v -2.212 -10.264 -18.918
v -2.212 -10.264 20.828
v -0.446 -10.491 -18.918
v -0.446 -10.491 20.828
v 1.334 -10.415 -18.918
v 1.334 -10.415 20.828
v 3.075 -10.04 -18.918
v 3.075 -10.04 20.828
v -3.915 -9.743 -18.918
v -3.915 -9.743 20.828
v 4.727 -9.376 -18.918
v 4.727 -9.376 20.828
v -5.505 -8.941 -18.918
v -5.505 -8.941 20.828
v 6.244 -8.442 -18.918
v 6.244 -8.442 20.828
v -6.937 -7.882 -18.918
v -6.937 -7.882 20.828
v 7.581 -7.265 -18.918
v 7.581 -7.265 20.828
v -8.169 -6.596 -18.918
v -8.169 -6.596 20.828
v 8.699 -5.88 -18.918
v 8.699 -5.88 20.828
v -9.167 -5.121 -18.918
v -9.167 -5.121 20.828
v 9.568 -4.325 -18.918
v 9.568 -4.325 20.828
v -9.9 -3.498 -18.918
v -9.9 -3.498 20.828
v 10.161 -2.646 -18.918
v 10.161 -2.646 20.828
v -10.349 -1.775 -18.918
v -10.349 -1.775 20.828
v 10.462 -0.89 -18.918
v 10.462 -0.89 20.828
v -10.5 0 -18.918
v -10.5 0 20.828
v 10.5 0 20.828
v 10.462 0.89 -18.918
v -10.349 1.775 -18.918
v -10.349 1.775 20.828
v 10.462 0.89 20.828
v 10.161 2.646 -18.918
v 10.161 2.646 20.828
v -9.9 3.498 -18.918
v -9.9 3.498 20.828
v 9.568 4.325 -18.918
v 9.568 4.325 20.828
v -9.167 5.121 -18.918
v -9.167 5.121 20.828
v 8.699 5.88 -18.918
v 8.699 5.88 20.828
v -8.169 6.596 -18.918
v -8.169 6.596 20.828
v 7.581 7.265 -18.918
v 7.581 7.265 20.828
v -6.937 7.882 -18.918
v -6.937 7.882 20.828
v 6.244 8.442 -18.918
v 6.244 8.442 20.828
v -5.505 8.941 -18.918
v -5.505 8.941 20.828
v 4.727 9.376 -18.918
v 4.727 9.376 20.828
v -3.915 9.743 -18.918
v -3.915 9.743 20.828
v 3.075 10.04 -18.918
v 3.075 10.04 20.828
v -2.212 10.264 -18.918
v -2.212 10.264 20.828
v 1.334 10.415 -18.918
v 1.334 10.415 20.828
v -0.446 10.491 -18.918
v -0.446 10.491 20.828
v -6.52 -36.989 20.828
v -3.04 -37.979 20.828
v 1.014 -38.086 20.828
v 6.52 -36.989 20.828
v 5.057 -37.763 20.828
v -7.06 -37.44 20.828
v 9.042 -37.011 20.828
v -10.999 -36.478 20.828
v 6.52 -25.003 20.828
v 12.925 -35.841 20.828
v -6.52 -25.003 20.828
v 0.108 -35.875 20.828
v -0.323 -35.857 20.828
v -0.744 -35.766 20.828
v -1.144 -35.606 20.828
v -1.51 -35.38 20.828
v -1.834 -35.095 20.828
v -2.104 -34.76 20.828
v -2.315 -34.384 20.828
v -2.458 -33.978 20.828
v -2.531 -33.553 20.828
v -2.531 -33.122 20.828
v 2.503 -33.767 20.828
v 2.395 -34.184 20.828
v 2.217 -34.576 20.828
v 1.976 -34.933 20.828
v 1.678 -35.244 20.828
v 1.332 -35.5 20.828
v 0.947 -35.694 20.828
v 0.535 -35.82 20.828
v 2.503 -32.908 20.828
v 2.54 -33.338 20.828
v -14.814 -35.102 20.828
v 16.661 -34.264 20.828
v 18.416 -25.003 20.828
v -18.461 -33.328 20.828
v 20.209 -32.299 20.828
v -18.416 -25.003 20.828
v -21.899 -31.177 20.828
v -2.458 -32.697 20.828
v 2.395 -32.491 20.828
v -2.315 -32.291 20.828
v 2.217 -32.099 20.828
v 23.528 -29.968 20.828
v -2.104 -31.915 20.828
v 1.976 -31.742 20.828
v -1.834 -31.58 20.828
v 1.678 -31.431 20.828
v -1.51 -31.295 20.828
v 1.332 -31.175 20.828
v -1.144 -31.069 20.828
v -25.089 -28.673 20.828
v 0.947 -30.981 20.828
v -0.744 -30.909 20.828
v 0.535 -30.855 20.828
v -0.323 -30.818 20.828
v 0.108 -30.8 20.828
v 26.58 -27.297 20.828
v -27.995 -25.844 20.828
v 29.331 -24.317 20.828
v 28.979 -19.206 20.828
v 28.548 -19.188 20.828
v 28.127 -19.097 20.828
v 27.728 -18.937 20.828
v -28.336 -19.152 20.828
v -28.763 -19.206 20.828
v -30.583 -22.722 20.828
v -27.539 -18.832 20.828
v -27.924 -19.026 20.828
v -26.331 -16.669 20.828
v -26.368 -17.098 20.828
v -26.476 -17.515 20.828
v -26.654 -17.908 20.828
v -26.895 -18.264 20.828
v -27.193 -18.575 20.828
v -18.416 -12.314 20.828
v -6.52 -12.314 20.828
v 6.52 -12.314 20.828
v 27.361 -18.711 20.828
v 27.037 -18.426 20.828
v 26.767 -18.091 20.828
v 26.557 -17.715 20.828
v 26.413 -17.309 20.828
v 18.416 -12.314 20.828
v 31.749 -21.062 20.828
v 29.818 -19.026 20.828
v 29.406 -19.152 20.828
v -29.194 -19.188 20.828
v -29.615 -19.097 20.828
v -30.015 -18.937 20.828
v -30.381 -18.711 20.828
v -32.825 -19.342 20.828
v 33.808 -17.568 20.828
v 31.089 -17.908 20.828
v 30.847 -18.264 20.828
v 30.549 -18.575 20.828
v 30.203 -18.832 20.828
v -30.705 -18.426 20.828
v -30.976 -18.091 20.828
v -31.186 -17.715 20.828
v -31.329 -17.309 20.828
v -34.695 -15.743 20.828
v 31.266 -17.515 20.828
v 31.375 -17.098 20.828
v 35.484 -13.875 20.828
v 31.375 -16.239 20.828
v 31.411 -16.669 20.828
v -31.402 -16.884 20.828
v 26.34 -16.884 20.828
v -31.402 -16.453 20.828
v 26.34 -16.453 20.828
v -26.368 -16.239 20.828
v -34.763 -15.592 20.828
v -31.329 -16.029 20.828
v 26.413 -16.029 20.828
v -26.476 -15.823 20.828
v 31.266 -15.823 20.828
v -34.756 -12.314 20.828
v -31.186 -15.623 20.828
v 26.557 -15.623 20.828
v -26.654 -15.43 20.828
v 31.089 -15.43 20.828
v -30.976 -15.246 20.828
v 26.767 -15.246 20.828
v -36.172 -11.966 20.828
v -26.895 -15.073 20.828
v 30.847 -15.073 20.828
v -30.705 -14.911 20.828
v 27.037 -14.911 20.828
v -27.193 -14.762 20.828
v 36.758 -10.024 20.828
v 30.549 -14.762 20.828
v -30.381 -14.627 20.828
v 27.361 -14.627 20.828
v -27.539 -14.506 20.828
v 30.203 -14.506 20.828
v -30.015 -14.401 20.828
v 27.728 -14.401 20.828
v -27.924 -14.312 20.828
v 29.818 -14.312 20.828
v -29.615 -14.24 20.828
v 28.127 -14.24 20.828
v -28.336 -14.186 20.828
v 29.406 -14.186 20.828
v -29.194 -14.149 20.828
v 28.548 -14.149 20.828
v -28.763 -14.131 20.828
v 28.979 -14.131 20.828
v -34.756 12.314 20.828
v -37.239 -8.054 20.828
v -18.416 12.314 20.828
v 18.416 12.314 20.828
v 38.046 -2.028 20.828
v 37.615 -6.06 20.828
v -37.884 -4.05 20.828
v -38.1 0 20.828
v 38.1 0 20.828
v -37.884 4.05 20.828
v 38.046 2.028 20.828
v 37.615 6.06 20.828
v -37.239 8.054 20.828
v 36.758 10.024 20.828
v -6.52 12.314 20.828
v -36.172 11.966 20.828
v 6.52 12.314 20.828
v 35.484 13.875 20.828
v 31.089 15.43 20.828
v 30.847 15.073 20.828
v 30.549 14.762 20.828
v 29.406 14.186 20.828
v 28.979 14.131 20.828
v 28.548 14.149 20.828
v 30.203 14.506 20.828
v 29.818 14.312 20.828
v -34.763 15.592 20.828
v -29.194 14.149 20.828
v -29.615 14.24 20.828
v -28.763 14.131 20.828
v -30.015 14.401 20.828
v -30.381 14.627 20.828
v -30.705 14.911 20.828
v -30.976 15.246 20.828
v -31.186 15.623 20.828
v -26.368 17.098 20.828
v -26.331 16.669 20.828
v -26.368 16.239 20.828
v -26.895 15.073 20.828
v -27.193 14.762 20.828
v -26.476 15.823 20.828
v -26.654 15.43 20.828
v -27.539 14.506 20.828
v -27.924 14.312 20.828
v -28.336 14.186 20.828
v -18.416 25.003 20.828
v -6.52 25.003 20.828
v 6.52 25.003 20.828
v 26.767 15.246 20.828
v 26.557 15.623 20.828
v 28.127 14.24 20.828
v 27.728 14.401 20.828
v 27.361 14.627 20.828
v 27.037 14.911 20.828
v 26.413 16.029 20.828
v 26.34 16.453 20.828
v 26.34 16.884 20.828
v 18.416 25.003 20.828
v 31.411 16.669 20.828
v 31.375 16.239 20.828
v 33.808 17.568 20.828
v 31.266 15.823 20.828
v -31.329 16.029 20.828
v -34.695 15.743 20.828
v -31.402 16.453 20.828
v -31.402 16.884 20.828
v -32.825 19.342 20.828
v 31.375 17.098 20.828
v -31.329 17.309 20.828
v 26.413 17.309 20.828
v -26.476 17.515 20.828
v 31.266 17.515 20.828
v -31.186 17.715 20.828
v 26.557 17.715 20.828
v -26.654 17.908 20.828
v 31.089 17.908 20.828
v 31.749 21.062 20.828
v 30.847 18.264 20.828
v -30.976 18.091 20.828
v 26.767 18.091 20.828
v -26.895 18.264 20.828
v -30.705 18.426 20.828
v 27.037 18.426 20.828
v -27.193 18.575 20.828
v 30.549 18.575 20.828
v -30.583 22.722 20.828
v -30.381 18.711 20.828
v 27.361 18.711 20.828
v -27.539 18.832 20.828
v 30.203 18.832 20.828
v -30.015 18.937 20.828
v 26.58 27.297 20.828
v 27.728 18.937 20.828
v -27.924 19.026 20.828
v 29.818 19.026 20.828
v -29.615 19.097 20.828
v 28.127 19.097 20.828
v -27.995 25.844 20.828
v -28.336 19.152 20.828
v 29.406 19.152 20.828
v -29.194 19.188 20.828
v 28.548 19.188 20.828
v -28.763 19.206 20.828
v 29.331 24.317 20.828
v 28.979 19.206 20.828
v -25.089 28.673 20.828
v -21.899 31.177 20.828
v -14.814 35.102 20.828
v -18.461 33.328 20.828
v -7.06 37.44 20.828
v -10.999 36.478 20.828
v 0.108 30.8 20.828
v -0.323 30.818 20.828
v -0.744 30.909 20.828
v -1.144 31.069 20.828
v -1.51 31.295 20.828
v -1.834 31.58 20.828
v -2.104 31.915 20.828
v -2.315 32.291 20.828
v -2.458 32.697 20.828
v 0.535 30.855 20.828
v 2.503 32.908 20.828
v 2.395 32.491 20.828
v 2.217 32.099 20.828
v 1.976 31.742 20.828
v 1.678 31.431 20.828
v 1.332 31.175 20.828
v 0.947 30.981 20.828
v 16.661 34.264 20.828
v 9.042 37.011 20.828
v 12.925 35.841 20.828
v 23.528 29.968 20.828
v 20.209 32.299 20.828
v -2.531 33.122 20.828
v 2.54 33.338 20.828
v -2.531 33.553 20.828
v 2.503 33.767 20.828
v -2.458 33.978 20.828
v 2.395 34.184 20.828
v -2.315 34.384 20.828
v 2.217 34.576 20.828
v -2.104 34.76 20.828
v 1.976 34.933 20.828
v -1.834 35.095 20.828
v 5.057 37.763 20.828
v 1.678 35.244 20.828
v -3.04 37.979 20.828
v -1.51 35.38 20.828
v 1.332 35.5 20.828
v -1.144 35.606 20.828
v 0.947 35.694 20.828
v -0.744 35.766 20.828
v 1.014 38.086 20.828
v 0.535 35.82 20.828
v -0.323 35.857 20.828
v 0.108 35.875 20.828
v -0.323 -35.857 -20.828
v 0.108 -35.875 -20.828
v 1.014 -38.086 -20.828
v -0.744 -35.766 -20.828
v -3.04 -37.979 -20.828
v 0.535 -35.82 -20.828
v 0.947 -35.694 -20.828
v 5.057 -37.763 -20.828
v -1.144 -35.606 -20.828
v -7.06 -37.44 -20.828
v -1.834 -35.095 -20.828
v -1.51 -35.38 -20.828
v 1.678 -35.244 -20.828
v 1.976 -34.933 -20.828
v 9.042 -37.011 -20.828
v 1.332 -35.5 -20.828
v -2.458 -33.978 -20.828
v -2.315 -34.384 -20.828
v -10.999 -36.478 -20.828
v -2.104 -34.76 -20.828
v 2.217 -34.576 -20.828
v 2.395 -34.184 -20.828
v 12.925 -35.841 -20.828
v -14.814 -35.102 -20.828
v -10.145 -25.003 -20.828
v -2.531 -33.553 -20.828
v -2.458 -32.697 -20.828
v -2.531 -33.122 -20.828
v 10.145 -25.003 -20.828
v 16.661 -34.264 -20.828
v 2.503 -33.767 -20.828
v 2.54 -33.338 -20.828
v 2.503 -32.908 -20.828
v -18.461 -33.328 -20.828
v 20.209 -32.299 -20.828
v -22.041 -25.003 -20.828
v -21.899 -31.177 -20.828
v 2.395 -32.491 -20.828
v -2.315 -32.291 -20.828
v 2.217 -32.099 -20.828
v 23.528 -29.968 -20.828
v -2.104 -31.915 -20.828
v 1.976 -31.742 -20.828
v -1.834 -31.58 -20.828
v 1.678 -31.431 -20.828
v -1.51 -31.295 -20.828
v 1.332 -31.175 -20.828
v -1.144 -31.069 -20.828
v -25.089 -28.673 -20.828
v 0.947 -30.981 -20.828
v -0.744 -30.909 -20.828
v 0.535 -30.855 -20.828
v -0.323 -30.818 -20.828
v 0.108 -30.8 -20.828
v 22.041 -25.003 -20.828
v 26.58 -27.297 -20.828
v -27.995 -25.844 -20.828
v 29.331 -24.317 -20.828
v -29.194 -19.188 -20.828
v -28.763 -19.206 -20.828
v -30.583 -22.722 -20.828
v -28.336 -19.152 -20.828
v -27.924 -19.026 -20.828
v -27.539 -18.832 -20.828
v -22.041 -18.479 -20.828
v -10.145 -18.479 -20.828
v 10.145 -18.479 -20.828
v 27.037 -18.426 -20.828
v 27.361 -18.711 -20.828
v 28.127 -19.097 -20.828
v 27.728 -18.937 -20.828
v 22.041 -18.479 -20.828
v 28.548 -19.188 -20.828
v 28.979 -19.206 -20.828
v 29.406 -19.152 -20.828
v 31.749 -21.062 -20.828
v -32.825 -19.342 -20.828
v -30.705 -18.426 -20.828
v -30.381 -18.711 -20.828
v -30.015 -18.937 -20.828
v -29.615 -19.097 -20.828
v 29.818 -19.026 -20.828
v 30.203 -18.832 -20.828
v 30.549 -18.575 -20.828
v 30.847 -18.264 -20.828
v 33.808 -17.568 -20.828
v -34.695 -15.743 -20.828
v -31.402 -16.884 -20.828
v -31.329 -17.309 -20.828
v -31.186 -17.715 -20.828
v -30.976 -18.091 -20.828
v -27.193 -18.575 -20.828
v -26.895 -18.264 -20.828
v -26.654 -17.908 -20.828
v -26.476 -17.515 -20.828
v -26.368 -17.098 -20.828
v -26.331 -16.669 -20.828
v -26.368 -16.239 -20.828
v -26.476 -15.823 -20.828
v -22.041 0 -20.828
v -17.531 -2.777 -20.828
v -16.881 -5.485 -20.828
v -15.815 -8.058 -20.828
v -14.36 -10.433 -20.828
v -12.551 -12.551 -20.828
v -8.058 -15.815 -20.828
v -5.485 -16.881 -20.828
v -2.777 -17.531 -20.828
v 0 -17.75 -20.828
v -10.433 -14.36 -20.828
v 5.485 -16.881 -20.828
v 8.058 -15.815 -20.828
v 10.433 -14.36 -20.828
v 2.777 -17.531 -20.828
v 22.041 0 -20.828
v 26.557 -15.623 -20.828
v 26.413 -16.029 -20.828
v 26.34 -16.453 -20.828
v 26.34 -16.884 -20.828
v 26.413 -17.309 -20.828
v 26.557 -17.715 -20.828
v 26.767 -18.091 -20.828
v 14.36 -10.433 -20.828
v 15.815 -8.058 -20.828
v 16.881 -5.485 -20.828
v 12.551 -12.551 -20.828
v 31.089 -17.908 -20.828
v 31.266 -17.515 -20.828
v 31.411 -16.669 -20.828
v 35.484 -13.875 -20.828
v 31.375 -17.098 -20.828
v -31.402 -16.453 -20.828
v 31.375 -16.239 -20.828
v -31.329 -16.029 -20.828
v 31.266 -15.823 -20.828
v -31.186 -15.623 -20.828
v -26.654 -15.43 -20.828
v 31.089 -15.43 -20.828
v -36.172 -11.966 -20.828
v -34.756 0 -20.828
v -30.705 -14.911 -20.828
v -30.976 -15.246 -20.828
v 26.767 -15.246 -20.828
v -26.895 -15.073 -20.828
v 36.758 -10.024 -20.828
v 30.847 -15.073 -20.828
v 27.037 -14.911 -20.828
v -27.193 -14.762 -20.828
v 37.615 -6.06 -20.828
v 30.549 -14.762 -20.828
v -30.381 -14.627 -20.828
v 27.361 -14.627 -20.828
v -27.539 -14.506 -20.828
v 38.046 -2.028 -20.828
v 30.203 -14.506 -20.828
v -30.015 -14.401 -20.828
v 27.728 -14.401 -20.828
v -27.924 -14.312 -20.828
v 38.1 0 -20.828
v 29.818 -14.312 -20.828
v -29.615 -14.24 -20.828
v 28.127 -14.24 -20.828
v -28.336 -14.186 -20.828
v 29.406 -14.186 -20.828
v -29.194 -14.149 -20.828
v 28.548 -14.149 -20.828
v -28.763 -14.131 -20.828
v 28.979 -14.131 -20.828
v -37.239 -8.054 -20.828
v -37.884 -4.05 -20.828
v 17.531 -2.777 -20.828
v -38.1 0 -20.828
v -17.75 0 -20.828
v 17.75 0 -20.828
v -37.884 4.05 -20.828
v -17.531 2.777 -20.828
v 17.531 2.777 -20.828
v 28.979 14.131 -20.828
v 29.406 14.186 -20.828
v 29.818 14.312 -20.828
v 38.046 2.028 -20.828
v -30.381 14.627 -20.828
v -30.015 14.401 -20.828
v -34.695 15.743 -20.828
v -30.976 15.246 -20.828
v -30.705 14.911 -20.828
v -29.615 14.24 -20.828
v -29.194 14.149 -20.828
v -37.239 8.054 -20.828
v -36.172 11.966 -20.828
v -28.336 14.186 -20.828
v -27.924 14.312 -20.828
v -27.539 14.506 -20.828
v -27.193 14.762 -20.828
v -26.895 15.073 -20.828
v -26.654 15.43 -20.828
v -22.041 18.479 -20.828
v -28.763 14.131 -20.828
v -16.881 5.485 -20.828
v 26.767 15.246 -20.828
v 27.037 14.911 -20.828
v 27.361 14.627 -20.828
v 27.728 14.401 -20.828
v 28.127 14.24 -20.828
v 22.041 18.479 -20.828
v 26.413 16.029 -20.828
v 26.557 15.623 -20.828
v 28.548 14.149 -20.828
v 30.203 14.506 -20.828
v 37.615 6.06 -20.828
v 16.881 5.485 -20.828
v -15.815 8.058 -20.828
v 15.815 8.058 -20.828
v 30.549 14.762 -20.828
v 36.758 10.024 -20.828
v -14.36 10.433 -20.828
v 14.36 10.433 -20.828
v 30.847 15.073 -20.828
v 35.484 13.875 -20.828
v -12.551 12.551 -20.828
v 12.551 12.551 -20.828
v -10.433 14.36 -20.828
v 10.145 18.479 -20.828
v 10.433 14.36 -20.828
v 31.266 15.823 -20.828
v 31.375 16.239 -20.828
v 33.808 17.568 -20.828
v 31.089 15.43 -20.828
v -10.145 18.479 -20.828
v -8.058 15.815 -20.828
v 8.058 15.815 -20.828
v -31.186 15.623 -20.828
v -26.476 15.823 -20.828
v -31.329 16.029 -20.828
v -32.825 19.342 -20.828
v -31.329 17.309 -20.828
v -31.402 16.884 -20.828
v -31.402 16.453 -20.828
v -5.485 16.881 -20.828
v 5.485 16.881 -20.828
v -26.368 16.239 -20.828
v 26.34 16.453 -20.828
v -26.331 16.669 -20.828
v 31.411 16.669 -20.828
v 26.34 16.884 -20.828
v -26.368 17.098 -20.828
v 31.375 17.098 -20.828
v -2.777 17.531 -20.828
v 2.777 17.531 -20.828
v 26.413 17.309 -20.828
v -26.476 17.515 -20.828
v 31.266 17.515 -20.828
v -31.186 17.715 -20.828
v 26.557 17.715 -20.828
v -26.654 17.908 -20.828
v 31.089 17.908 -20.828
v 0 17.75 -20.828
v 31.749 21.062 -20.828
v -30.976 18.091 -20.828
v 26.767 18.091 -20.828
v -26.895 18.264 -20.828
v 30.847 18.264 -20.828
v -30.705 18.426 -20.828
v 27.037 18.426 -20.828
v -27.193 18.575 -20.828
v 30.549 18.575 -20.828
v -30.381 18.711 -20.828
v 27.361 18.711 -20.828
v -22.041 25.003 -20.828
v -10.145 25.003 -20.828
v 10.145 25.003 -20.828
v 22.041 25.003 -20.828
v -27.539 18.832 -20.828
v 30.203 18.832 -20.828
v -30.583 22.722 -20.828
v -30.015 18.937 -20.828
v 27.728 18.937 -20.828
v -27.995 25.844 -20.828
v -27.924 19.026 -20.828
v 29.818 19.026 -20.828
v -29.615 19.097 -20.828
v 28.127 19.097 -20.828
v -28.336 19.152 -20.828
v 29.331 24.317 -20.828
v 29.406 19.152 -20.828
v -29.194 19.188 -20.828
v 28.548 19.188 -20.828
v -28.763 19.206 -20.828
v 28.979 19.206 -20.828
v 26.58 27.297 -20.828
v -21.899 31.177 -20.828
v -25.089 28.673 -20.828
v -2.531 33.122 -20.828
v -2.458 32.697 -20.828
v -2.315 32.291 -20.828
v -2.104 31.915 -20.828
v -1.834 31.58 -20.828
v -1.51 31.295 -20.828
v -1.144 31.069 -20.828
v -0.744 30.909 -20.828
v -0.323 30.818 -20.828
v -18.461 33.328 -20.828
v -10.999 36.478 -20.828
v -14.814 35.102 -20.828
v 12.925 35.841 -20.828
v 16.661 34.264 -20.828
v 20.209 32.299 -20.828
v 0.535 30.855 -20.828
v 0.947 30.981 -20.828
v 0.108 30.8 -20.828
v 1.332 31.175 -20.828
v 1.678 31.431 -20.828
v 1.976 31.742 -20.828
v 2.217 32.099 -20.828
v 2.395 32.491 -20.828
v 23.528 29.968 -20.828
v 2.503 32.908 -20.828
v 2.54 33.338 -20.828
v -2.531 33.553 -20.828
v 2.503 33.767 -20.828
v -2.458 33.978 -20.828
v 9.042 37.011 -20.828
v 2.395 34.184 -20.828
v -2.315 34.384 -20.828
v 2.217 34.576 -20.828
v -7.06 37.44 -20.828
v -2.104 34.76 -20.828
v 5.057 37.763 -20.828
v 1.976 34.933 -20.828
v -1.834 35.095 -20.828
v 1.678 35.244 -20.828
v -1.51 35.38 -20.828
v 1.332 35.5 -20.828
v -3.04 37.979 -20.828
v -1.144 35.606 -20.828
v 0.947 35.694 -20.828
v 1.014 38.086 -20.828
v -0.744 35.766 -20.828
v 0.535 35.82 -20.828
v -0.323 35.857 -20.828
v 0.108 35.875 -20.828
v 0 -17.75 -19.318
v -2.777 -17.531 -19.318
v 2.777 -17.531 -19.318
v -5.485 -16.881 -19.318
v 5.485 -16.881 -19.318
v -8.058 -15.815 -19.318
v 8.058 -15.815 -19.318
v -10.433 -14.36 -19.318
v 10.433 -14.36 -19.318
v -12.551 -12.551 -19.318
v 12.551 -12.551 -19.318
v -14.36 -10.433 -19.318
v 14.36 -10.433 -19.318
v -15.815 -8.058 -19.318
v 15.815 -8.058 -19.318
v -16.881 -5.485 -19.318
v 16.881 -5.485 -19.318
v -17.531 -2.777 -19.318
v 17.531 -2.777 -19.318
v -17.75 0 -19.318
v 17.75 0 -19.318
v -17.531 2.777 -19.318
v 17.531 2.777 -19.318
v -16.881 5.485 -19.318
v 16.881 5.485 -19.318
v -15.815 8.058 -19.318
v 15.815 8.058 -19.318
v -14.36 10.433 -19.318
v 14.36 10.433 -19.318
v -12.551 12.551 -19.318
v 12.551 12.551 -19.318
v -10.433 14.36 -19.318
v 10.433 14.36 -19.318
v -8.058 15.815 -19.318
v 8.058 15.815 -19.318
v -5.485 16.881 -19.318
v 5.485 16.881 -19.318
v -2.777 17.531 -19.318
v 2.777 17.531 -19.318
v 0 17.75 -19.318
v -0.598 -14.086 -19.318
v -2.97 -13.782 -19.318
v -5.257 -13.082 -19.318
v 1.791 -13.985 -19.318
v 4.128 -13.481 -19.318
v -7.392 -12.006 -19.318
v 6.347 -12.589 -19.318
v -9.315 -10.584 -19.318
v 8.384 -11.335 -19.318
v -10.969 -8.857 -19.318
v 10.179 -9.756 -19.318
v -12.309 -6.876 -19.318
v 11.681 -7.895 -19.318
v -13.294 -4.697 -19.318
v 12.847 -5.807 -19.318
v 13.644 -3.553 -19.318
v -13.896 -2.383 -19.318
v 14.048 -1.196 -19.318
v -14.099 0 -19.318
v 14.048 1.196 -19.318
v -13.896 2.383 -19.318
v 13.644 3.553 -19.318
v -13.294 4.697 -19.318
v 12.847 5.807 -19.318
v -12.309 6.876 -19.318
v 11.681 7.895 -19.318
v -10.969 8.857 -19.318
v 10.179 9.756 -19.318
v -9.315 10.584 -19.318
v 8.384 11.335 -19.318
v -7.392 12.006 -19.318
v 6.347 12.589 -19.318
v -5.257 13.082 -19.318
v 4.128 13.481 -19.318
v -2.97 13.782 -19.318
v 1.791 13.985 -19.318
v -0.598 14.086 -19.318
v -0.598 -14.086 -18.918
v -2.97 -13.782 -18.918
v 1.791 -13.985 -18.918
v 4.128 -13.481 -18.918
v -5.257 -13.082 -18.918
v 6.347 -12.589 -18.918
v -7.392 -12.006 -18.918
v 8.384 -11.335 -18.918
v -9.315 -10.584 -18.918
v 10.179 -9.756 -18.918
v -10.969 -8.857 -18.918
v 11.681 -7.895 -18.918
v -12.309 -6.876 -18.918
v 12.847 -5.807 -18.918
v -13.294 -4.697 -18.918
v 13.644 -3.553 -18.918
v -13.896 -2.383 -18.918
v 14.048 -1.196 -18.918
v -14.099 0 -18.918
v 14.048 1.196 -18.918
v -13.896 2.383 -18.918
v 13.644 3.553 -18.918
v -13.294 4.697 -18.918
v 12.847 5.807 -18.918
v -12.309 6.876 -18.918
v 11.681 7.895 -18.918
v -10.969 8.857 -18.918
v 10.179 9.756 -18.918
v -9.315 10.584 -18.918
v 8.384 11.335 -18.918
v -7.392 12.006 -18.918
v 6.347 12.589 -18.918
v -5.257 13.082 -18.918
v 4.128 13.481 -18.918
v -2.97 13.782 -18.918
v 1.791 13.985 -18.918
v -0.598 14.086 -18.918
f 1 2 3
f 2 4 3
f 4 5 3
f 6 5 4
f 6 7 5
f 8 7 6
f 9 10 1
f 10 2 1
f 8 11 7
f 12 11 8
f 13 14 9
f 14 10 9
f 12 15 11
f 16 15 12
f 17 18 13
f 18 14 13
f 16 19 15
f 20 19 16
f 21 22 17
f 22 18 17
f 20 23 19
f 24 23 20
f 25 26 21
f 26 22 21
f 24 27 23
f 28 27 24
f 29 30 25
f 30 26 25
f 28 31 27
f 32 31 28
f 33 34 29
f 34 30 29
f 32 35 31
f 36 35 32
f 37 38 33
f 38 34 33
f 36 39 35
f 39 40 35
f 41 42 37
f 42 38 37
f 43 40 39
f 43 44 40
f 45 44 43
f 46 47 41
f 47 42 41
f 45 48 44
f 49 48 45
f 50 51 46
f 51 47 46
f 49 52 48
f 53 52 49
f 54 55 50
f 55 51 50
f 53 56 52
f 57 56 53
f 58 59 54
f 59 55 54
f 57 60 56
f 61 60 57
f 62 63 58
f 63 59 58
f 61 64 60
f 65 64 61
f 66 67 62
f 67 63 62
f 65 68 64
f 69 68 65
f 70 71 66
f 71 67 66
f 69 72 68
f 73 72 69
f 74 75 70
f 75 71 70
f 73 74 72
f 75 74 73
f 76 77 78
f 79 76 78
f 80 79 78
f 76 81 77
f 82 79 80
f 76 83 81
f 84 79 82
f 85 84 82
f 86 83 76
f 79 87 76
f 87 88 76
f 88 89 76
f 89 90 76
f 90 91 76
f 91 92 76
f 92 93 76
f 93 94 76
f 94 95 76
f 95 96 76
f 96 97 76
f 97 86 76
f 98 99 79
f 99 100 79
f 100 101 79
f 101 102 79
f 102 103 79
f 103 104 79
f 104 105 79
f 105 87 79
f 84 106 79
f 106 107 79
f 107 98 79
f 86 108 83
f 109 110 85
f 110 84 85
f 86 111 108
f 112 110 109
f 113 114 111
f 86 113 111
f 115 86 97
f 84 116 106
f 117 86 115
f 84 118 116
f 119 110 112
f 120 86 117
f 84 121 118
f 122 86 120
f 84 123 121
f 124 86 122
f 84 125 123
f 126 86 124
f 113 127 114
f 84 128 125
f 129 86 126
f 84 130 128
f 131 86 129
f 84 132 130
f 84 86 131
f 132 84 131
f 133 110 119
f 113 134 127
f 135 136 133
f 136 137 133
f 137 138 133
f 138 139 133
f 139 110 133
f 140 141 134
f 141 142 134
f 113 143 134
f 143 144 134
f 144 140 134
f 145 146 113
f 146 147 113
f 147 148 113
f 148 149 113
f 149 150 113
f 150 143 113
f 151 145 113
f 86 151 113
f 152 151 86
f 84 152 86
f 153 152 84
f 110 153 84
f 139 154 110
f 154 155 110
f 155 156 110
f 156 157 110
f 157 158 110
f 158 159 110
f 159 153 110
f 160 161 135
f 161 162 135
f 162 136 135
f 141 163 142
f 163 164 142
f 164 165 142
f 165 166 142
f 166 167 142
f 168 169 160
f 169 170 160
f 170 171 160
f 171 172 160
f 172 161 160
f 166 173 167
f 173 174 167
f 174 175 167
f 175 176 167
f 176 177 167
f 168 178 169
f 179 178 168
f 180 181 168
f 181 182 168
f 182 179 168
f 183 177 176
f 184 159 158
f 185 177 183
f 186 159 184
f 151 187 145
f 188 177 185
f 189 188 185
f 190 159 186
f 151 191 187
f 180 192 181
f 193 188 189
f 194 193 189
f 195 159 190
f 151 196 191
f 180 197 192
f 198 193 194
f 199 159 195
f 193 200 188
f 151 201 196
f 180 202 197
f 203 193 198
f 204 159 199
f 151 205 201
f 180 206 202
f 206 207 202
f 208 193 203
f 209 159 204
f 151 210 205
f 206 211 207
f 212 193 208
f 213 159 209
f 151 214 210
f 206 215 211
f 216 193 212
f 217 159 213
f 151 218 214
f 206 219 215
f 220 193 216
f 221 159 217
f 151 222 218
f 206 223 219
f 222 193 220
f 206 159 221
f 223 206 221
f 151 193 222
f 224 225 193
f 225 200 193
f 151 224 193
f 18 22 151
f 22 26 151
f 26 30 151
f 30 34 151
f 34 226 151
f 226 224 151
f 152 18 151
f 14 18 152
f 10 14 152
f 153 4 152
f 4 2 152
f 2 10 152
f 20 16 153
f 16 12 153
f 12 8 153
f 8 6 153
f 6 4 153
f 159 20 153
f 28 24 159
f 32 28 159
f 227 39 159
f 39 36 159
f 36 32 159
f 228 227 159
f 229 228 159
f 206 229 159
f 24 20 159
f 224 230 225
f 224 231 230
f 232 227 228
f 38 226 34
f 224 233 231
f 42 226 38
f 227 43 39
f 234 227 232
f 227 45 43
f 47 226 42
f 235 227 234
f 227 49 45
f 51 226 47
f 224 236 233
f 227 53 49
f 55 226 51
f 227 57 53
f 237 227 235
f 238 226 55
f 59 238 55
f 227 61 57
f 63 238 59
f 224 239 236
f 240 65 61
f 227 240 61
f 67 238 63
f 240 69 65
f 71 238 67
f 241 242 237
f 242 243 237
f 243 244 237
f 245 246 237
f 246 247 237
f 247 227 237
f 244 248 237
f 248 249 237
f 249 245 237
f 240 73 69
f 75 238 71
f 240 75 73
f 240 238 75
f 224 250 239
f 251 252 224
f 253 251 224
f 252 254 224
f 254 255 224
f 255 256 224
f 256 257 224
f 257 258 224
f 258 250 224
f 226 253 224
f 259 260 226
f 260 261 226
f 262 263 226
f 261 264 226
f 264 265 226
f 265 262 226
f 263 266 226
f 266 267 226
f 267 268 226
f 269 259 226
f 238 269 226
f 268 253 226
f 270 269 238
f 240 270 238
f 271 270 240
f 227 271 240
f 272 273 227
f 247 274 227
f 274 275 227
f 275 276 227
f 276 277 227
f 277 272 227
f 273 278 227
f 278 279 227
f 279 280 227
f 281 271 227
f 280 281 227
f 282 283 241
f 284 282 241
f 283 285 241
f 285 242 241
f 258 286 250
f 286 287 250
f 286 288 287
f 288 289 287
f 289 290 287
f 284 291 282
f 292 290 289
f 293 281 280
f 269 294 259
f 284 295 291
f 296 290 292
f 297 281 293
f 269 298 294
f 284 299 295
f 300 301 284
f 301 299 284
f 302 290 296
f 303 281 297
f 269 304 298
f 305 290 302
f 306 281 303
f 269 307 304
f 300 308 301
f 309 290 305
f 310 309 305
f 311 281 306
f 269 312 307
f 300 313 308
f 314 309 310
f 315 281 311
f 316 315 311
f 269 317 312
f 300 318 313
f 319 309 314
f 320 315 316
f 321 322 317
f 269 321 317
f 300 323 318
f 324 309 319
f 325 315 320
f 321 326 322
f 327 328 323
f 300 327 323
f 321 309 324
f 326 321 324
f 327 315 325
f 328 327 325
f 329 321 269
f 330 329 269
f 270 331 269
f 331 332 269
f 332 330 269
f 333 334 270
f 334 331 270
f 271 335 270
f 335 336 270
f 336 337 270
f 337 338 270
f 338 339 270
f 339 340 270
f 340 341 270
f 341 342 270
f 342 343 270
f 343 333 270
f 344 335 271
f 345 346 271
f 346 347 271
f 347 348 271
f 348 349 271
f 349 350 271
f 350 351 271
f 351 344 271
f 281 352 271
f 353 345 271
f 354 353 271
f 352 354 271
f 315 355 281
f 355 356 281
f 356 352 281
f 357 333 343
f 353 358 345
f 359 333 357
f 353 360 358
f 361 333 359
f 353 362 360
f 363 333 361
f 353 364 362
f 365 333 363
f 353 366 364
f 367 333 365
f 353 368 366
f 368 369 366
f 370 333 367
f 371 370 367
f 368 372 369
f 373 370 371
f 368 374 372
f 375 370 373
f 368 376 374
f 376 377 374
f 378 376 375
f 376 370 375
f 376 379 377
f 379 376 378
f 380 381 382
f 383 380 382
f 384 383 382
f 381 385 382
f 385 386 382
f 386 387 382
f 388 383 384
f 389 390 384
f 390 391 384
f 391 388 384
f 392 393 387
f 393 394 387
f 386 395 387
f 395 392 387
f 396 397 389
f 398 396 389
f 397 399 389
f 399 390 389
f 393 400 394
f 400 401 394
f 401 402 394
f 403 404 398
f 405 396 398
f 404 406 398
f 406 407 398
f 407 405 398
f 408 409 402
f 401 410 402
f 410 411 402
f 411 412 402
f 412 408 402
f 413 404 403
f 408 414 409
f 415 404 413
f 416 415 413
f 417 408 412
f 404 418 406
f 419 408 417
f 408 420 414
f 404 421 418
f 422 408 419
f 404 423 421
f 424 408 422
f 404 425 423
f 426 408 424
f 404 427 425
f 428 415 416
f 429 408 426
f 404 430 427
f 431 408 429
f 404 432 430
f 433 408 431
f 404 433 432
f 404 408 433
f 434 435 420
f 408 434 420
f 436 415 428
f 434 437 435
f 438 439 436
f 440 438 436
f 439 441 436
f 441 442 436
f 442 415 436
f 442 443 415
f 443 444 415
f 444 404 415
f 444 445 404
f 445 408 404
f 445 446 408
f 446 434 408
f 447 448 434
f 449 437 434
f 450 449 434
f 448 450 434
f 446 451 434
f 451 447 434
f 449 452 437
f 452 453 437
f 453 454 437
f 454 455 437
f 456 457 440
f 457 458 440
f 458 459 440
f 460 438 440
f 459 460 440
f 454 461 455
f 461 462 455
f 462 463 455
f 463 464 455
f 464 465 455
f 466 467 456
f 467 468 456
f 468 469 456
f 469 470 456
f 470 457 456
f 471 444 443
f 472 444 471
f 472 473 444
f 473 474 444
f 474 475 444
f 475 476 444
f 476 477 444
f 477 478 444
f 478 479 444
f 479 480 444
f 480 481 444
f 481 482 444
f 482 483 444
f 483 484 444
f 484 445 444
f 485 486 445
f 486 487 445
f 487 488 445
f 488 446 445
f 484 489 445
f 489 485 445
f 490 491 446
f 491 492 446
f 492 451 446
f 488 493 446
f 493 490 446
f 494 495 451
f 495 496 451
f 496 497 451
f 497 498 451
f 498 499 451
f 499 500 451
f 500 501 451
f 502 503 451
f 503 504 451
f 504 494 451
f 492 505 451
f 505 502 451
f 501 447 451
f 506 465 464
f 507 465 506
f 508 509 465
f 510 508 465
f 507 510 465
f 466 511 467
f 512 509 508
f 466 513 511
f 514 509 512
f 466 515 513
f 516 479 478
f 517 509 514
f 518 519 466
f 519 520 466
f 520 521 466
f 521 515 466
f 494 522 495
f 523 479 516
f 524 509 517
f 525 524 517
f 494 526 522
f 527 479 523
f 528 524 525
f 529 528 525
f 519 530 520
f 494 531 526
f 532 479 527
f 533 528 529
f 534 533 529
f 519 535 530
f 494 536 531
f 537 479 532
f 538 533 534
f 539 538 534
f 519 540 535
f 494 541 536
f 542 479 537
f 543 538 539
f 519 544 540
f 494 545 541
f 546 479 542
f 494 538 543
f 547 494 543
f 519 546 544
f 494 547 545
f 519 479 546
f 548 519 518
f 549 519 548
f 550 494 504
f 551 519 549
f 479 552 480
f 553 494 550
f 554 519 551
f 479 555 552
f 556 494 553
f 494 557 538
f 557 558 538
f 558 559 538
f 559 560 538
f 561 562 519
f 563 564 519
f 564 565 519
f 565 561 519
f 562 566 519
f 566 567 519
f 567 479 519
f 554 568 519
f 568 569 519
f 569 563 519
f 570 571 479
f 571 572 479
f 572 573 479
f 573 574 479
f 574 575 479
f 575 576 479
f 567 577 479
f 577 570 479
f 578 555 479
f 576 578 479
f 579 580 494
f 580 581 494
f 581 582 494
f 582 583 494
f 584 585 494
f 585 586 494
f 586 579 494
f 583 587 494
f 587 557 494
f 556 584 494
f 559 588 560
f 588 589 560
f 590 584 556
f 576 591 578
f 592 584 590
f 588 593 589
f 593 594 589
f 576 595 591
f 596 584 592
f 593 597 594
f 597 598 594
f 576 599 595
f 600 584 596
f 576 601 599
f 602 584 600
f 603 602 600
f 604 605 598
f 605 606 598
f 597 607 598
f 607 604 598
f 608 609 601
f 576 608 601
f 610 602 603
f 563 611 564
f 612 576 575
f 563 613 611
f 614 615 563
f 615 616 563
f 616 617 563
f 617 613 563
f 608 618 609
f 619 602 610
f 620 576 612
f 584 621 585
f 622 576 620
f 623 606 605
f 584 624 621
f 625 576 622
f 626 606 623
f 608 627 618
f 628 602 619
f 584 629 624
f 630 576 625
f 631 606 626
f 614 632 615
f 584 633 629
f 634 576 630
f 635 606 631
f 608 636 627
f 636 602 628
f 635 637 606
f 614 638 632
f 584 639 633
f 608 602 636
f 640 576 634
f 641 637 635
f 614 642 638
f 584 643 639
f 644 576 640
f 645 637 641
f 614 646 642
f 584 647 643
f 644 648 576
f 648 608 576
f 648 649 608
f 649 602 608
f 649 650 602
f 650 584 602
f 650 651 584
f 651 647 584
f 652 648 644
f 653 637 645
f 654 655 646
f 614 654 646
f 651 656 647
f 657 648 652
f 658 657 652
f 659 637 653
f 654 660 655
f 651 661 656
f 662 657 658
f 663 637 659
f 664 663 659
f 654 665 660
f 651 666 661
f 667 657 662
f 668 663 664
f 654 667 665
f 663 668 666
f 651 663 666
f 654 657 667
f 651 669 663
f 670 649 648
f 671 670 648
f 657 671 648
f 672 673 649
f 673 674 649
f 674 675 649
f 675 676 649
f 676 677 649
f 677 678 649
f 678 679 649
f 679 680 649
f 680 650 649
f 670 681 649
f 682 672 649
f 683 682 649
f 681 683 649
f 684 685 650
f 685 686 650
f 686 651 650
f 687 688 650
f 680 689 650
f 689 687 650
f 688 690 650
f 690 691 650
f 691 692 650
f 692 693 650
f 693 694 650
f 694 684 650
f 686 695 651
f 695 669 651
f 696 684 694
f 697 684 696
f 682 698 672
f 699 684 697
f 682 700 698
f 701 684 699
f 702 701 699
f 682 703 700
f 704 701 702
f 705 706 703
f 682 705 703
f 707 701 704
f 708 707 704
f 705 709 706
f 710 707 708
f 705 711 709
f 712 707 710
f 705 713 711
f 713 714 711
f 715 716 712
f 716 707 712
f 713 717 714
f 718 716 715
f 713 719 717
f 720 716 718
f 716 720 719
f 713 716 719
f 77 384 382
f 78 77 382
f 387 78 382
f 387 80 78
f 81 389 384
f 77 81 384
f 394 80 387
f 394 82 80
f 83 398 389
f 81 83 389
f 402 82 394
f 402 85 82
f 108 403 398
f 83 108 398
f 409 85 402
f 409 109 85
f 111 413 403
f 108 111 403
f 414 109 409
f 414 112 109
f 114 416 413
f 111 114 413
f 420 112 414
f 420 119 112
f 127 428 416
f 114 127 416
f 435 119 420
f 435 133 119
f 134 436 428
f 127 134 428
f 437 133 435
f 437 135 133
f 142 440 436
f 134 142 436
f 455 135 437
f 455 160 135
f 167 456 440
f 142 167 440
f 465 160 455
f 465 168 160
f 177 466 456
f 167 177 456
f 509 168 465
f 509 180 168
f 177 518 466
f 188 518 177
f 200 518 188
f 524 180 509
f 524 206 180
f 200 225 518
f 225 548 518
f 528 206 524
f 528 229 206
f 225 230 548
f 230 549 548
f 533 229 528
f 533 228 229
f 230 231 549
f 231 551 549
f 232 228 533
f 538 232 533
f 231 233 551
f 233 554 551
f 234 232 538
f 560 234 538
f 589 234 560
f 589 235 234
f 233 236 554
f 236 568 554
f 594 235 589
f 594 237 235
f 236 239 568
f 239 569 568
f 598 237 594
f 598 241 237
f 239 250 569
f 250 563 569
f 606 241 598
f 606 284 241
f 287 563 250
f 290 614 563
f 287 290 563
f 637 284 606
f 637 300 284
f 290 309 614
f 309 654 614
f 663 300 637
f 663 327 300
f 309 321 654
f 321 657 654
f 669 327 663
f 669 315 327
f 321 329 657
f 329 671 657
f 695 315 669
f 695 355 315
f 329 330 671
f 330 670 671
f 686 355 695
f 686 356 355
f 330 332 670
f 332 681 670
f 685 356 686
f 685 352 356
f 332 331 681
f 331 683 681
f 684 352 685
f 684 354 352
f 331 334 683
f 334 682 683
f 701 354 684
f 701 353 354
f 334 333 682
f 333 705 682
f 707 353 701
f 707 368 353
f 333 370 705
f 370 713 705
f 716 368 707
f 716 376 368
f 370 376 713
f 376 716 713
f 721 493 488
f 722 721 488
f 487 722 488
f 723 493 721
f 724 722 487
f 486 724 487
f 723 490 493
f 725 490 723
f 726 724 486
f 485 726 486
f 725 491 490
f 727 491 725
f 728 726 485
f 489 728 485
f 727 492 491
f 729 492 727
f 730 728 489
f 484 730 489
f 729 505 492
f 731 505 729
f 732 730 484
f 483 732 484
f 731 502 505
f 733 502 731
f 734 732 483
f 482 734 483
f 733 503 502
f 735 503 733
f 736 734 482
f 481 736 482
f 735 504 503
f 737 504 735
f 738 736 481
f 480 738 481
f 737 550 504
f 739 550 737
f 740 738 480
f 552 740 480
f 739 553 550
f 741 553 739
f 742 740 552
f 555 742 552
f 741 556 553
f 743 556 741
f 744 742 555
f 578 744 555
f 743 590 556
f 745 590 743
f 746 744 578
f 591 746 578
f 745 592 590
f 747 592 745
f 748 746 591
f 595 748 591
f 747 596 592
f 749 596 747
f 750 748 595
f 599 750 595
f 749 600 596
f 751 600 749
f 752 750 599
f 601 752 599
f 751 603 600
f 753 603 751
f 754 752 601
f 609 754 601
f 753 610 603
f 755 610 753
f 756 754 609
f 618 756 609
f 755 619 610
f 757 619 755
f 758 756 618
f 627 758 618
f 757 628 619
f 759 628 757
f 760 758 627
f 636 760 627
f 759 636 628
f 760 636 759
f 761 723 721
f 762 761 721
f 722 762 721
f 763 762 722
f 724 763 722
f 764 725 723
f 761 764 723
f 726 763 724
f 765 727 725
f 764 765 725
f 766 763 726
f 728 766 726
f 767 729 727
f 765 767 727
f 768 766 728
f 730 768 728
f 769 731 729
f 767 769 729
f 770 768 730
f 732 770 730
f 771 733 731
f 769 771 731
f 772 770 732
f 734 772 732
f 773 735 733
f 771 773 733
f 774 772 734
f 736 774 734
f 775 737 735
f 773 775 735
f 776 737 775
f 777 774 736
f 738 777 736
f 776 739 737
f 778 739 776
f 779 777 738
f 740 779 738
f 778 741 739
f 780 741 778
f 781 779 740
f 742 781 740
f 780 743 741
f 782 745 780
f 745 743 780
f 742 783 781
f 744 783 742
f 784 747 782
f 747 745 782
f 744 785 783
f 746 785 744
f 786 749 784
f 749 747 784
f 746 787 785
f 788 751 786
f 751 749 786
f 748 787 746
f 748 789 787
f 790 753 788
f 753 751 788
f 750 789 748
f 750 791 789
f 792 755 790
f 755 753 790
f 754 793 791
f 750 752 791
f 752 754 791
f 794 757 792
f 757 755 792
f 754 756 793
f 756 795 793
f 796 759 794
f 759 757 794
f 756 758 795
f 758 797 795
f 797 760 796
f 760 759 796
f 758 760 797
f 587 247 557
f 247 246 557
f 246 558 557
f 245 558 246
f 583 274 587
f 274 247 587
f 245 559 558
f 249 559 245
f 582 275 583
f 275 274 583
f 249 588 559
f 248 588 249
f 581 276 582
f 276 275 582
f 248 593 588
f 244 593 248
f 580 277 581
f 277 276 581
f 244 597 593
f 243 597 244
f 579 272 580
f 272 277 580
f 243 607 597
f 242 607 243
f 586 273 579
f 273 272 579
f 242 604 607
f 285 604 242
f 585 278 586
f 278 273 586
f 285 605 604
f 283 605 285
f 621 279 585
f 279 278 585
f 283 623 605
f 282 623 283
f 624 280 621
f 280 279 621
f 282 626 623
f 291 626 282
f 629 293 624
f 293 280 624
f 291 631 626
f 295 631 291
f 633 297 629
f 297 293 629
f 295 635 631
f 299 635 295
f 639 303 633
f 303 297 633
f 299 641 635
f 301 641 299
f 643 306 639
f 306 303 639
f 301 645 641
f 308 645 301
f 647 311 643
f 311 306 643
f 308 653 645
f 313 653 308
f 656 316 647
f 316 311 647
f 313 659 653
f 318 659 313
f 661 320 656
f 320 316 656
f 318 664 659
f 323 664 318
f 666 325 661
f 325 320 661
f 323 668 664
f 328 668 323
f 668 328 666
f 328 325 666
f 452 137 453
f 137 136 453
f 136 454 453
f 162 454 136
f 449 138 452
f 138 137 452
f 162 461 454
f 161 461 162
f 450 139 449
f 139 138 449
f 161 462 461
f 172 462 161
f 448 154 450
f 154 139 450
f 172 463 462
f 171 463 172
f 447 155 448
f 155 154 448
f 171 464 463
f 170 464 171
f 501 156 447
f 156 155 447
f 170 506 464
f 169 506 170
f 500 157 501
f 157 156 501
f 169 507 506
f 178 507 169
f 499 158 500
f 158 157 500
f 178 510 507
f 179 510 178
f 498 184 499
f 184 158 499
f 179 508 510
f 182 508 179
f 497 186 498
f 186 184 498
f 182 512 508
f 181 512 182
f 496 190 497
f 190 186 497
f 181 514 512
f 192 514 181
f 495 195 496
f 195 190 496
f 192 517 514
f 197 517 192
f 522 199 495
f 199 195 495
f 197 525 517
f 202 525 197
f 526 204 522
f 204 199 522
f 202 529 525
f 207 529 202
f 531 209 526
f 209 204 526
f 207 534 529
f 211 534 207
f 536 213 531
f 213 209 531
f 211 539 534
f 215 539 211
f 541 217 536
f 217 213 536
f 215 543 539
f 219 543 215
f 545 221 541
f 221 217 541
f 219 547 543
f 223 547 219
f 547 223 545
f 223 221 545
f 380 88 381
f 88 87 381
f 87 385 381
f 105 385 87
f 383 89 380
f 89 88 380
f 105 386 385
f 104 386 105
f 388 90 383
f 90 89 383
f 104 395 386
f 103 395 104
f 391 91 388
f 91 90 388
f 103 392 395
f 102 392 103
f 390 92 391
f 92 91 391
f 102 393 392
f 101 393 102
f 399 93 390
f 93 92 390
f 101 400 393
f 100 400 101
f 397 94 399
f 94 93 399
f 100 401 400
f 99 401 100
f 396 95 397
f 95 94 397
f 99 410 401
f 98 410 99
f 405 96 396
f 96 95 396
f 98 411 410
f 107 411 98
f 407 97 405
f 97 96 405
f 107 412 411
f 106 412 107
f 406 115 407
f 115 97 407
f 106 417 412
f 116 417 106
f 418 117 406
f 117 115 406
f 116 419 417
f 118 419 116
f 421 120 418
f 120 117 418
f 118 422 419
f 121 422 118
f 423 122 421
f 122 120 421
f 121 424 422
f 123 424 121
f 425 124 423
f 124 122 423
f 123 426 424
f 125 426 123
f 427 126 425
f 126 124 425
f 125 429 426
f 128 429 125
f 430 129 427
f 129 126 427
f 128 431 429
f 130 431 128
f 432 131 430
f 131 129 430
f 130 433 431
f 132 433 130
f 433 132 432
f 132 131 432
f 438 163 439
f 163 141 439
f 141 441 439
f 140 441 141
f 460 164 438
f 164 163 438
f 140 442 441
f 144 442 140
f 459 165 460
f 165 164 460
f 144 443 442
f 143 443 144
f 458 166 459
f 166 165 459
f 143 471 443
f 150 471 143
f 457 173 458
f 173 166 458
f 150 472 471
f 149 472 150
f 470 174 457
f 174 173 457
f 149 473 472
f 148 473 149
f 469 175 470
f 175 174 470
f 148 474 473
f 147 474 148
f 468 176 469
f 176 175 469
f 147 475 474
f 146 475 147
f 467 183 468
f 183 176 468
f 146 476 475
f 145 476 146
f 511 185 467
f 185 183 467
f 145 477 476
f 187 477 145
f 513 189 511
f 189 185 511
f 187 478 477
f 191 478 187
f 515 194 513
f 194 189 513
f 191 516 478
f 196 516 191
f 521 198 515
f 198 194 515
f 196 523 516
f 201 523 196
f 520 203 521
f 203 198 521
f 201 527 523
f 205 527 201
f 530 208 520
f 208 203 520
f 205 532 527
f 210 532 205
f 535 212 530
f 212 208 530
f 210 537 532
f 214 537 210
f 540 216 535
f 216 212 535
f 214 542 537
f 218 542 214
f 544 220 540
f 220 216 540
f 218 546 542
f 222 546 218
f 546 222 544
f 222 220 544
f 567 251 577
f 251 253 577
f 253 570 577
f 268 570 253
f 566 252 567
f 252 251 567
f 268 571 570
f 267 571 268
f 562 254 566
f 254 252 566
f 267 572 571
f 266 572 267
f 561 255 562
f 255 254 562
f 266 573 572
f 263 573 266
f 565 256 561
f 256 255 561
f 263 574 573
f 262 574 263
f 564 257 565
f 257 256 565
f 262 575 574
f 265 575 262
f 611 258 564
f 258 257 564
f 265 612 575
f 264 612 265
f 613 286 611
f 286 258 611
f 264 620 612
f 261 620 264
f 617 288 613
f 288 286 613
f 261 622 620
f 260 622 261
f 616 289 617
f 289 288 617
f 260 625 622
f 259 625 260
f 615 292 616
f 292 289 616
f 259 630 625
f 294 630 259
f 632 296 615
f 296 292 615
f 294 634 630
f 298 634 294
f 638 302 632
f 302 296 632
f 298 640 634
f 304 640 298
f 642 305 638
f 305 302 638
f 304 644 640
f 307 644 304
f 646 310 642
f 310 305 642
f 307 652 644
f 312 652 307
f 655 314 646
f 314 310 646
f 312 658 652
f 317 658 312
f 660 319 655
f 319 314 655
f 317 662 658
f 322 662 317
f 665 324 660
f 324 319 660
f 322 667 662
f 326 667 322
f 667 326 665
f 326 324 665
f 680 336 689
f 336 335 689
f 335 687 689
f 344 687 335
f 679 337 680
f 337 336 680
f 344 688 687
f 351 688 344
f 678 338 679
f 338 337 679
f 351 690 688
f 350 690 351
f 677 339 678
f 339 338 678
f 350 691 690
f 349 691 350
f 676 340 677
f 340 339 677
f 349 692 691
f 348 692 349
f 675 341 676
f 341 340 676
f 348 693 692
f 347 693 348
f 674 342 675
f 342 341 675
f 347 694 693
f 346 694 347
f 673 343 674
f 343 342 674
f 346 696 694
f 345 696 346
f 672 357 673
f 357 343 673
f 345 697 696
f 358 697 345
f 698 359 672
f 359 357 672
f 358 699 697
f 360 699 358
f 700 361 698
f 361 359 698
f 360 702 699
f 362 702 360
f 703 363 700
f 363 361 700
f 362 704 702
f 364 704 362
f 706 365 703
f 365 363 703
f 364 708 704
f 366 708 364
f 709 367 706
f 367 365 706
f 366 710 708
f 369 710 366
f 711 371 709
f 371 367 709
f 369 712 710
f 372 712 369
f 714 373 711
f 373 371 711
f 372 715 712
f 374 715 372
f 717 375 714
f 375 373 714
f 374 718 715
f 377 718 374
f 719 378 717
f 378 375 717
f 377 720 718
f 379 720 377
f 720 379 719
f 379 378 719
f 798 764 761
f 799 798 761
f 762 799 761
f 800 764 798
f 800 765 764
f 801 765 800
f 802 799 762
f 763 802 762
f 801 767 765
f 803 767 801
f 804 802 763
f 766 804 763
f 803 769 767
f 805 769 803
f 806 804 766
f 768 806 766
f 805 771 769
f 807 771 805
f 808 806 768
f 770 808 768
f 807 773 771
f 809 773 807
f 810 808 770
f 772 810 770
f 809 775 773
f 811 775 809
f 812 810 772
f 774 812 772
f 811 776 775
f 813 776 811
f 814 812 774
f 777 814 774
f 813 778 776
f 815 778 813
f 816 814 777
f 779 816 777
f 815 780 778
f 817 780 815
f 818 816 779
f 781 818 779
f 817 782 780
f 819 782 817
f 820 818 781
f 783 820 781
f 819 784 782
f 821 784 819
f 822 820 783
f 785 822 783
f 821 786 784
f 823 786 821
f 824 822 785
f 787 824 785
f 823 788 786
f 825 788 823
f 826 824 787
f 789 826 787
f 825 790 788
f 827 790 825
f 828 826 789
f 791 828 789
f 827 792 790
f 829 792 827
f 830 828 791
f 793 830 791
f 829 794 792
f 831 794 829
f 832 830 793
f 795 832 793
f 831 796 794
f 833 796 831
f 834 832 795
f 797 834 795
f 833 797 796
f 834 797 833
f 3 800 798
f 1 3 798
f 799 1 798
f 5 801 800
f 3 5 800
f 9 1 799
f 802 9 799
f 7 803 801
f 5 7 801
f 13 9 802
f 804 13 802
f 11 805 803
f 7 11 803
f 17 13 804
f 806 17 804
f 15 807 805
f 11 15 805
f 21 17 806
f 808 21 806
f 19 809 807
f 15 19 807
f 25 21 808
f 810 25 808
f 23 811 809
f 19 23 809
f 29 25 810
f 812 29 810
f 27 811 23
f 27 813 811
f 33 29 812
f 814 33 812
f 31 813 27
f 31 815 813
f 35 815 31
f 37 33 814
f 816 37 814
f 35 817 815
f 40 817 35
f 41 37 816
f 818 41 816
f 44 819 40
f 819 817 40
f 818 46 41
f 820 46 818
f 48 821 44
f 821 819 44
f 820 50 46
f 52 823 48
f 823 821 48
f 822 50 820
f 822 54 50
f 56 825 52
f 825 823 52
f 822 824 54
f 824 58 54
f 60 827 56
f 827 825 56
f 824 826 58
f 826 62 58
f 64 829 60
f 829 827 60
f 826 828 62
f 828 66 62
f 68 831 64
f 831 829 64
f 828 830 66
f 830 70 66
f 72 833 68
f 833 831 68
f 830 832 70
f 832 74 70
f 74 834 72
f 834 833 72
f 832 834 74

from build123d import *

# Parameters (mm, degrees)
SKETCH1_R           = 38.1
SKETCH1_R_2         = 10.5
BOSS_EXTRUDE1_DEPTH = 20.828
SKETCH6_R           = 17.75000006
CUT_EXTRUDE2_DEPTH  = 1.510000028
SKETCH8_R           = 2.54
CUT_EXTRUDE3_DEPTH  = 42.656
SKETCH9_R           = 14.09889992
CUT_EXTRUDE4_DEPTH  = 0.4


with BuildPart() as part:
    # Sketch1 → Boss-Extrude1 (new body, symmetric)
    with BuildSketch(Plane.XY):
        Circle(SKETCH1_R)
        Circle(SKETCH1_R_2, mode=Mode.SUBTRACT)
    extrude(amount=BOSS_EXTRUDE1_DEPTH, both=True)

    # Sketch6 → Cut-Extrude2 (cut)
    with BuildSketch(Plane(origin=(0, 0, -20.828), x_dir=(-1, 0, 0), z_dir=(0, 0, -1))):
        Circle(SKETCH6_R)
    extrude(amount=-CUT_EXTRUDE2_DEPTH, mode=Mode.SUBTRACT)

    # Sketch8 → Cut-Extrude3 (cut, through all)
    with BuildSketch(Plane.XY.offset(20.828)):
        with Locations((0, 33.3375)):
            Circle(SKETCH8_R)
        with Locations((28.871121899, 16.66875)):
            Circle(SKETCH8_R)
        with Locations((28.871121899, -16.66875)):
            Circle(SKETCH8_R)
        with Locations((0, -33.3375)):
            Circle(SKETCH8_R)
        with Locations((-28.871121899, -16.66875)):
            Circle(SKETCH8_R)
        with Locations((-28.871121899, 16.66875)):
            Circle(SKETCH8_R)
    extrude(amount=-CUT_EXTRUDE3_DEPTH, mode=Mode.SUBTRACT)

    # Sketch9 → Cut-Extrude4 (cut)
    with BuildSketch(Plane(origin=(0, 0, -19.317999972), x_dir=(-1, 0, 0), z_dir=(0, 0, -1))):
        Circle(SKETCH9_R)
    extrude(amount=-CUT_EXTRUDE4_DEPTH, mode=Mode.SUBTRACT)


solid = part.part
